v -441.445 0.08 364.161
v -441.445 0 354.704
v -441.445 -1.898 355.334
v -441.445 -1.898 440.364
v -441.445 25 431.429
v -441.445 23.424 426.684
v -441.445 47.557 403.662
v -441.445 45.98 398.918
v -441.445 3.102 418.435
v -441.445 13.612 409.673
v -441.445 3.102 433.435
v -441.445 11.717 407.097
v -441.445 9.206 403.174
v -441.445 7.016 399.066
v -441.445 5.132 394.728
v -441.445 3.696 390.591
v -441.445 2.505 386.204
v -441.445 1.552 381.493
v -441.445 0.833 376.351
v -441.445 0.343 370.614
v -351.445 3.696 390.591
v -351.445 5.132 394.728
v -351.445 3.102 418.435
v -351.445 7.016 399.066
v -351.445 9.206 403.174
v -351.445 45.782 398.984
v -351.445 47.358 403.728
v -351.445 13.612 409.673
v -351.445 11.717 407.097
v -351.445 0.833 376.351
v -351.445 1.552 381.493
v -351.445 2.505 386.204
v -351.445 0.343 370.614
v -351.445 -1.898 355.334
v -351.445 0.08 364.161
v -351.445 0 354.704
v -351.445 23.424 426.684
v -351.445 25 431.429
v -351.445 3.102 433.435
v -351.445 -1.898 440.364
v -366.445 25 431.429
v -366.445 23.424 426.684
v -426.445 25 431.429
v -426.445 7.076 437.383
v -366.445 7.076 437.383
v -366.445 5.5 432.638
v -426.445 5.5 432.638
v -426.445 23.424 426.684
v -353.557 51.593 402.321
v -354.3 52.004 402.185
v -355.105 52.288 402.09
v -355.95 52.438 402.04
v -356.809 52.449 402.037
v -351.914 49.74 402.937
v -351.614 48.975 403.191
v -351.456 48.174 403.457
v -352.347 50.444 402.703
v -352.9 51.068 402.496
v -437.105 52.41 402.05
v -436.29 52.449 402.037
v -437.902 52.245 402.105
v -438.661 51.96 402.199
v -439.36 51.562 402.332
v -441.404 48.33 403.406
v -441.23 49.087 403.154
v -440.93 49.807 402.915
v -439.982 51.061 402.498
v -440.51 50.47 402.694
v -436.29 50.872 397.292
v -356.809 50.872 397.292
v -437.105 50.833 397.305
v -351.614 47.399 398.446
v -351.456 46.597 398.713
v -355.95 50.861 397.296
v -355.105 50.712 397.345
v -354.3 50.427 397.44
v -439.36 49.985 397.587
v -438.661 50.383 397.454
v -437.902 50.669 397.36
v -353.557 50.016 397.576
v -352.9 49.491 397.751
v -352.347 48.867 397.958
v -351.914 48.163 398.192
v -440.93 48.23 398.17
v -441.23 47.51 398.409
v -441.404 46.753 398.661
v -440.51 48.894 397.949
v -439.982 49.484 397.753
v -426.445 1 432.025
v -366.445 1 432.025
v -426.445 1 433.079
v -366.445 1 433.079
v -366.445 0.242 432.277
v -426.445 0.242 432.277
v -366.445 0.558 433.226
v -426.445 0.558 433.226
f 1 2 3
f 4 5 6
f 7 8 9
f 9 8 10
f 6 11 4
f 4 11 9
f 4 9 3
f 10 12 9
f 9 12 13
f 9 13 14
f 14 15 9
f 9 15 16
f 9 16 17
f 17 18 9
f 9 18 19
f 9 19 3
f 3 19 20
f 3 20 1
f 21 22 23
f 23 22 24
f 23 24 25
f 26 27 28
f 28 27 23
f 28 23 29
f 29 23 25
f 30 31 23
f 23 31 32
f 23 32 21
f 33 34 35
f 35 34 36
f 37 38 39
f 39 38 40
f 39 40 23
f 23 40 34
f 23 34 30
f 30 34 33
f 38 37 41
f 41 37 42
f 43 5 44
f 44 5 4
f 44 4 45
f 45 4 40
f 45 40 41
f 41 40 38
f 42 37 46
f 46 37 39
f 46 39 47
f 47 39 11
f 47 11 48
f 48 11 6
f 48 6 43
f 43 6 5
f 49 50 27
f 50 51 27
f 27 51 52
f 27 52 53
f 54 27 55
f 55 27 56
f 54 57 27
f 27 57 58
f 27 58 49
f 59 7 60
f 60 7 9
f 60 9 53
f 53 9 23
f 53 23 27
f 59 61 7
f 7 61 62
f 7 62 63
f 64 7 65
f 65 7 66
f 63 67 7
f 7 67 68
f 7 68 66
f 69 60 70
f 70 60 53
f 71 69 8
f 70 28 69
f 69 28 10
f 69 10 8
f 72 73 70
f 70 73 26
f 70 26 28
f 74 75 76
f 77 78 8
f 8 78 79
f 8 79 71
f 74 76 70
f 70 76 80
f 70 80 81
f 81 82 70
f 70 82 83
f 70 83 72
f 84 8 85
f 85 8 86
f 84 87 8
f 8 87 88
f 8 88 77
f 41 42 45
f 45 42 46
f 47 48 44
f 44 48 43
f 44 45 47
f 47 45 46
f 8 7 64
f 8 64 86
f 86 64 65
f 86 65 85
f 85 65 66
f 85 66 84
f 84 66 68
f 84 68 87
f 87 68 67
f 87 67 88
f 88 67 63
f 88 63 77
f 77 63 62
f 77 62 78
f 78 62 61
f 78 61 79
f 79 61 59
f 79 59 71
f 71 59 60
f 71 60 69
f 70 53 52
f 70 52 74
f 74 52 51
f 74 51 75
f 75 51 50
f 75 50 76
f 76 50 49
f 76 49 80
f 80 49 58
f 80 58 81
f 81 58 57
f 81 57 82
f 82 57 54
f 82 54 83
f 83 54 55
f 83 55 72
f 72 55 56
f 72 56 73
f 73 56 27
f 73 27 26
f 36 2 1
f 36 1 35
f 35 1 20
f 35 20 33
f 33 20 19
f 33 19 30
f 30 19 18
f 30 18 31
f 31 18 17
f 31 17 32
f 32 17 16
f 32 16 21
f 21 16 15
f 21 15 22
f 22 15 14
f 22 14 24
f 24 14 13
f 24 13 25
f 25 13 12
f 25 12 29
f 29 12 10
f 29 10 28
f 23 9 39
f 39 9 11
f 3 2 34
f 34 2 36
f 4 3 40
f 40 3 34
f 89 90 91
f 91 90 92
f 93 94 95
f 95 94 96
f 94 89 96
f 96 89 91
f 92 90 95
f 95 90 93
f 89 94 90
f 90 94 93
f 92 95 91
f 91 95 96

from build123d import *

# Parameters (mm, degrees)
SKETCH1_W           = 90
SKETCH1_H           = 90
BOSS_EXTRUDE1_DEPTH = 25
SKETCH2_W           = 50
SKETCH2_H           = 25
BOSS_EXTRUDE2_DEPTH = 90
CUT_EXTRUDE1_DEPTH  = 114
BOSS_EXTRUDE3_DEPTH = 90
CUT_EXTRUDE2_DEPTH  = 90
CUT_EXTRUDE3_DEPTH  = 7
SKETCH12_W          = 60
SKETCH12_H          = 3.762713397
CUT_EXTRUDE4_DEPTH  = 7
SKETCH13_W          = 60
SKETCH13_H          = 6.597800351
BOSS_EXTRUDE4_DEPTH = 4
SKETCH15_W          = 60
SKETCH15_H          = 4.875511562
BOSS_EXTRUDE5_DEPTH = 6
CUT_EXTRUDE5_DEPTH  = 105
CUT_EXTRUDE6_DEPTH  = 105
CUT_EXTRUDE7_DEPTH  = 105
CUT_EXTRUDE8_DEPTH  = 105
SKETCH20_R          = 5.002398859
BOSS_EXTRUDE6_DEPTH = 5
SKETCH21_R          = 5.013240391
BOSS_EXTRUDE7_DEPTH = 5
CUT_EXTRUDE9_DEPTH  = 110
CUT_EXTRUDE10_DEPTH = 110
BOSS_EXTRUDE8_DEPTH = 90


with BuildPart() as part:
    # Sketch1 → Boss-Extrude1 (new body)
    with BuildSketch(Plane(origin=(0, 0, 0), x_dir=(1, 0, 0), z_dir=(0, 1, 0))):
        with Locations((-396.44486692, -394.733840304)):
            Rectangle(SKETCH1_W, SKETCH1_H)
    extrude(amount=BOSS_EXTRUDE1_DEPTH)

    # Sketch2 → Boss-Extrude2 (add)
    with BuildSketch(Plane(origin=(-351.44486692, 0, 0), x_dir=(0, 0, -1), z_dir=(1, 0, 0))):
        with Locations((-324.733840304, 12.5)):
            Rectangle(SKETCH2_W, SKETCH2_H)
    extrude(amount=-BOSS_EXTRUDE2_DEPTH)

    # Sketch3 → Cut-Extrude1 (cut)
    with BuildSketch(Plane(origin=(-351.44486692, 0, 0), x_dir=(0, 0, -1), z_dir=(1, 0, 0))):
        Polygon((-439.733840304, 0), (-431.428630034, 25), (-426.683614644, 23.423665978), (-432.80411144, 5), (-422.80411144, 5), (-417.80411144, 5), (-409.869768155, 28.88363156), (-456.556935105, 33.347834294), align=None)
    extrude(amount=-CUT_EXTRUDE1_DEPTH, mode=Mode.SUBTRACT)

    # Sketch6 → Boss-Extrude3 (add)
    with BuildSketch(Plane(origin=(-351.44486692, 0, 0), x_dir=(0, 0, -1), z_dir=(1, 0, 0))):
        Polygon((-417.80411144, 5), (-402.036905068, 52.448869357), (-397.292018132, 50.872148719), (-412.958326169, 3.726916659), align=None)
    extrude(amount=-BOSS_EXTRUDE3_DEPTH)

    # Sketch8 → Cut-Extrude2 (cut)
    with BuildSketch(Plane.ZY.offset(441.44486692)):
        Polygon((402.036905068, 52.448869357), (417.80411144, 5), (422.667757436, 11.843524049), (408.096373886, 67.204399508), align=None)
    extrude(amount=-CUT_EXTRUDE2_DEPTH, mode=Mode.SUBTRACT)

    # Sketch11 → Cut-Extrude3 (cut)
    with BuildSketch(Plane(origin=(0, 131.563601718, 396.027305256), x_dir=(1, 0, 0), z_dir=(0, 0.31526680439845073, 0.9490030779952134))):
        Polygon((-396.44486692, -112.290048567), (-366.44486692, -112.290048567), (-366.44486692, -132.290048567), (-426.44486692, -132.290048567), (-426.44486692, -112.290048567), align=None)
    extrude(amount=-CUT_EXTRUDE3_DEPTH, mode=Mode.SUBTRACT)

    # Sketch12 → Cut-Extrude4 (cut)
    with BuildSketch(Plane(origin=(0, 131.563601718, 396.027305256), x_dir=(1, 0, 0), z_dir=(0, 0.31526680439845073, 0.9490030779952134))):
        with Locations((-396.44486692, -134.171405266)):
            Rectangle(SKETCH12_W, SKETCH12_H)
    extrude(amount=-CUT_EXTRUDE4_DEPTH, mode=Mode.SUBTRACT)

    # Sketch13 → Boss-Extrude4 (add)
    with BuildSketch(Plane(origin=(0, 5, 0), x_dir=(1, 0, 0), z_dir=(0, 1, 0))):
        with Locations((-396.44486692, -433.995536892)):
            Rectangle(SKETCH13_W, SKETCH13_H)
    extrude(amount=-BOSS_EXTRUDE4_DEPTH)

    # Sketch15 → Boss-Extrude5 (add)
    with BuildSketch(Plane(origin=(0, 131.563601718, 396.027305256), x_dir=(1, 0, 0), z_dir=(0, 0.31526680439845073, 0.9490030779952134))):
        with Locations((-396.44486692, -133.615006183)):
            Rectangle(SKETCH15_W, SKETCH15_H)
    extrude(amount=-BOSS_EXTRUDE5_DEPTH)

    # Sketch16 → Cut-Extrude5 (cut)
    with BuildSketch(Plane.ZY.offset(441.44486692)):
        Polygon((299.733840304, 25), (405.889304299, 25), (320.938870245, 45.924702762), (282.519842095, 35.688976285), (299.733840304, -6.375653077), (299.733840304, 0), (299.733840304, 13.612271354), align=None)
        Polygon((409.673433828, 13.612271354), (405.889304299, 25), (299.733840304, 25), (299.733840304, 13.612271354), align=None)
    extrude(amount=-CUT_EXTRUDE5_DEPTH, mode=Mode.SUBTRACT)

    # Sketch17 → Cut-Extrude6 (cut)
    with BuildSketch(Plane(origin=(-351.44486692, 0, 0), x_dir=(0, 0, -1), z_dir=(1, 0, 0))):
        Polygon((-354.703637066, 13.612271354), (-354.703637066, -9.141758862), (-285.710269568, -9.141758862), (-285.710269568, 26.661614512), (-354.703637066, 26.661614512), align=None)
    extrude(amount=-CUT_EXTRUDE6_DEPTH, mode=Mode.SUBTRACT)

    # Sketch18 → Cut-Extrude7 (cut)
    with BuildSketch(Plane(origin=(0, 125.526947543, 377.753141183), x_dir=(1, 0, 0), z_dir=(0, 0.3153441274409663, 0.9489773871323255))):
        Polygon((-441.44486692, -77.007186028), (-436.44486692, -77.007186028), (-441.44486692, -82.007186028), align=None)
    extrude(amount=-CUT_EXTRUDE7_DEPTH, mode=Mode.SUBTRACT)

    # Sketch19 → Cut-Extrude8 (cut)
    with BuildSketch(Plane(origin=(0, 125.526947543, 377.753141183), x_dir=(1, 0, 0), z_dir=(0, 0.3153441274409663, 0.9489773871323255))):
        Polygon((-351.44486692, -82.007186028), (-351.44486692, -77.007186028), (-356.44486692, -77.007186028), align=None)
    extrude(amount=-CUT_EXTRUDE8_DEPTH, mode=Mode.SUBTRACT)

    # Sketch20 → Boss-Extrude6 (add)
    with BuildSketch(Plane(origin=(0, 125.526947543, 377.753141183), x_dir=(1, 0, 0), z_dir=(0, 0.3153441274409663, 0.9489773871323255))):
        with Locations((-436.44486692, -82.007186028)):
            Circle(SKETCH20_R)
    extrude(amount=-BOSS_EXTRUDE6_DEPTH)

    # Sketch21 → Boss-Extrude7 (add)
    with BuildSketch(Plane(origin=(0, 125.526947543, 377.753141183), x_dir=(1, 0, 0), z_dir=(0, 0.3153441274409663, 0.9489773871323255))):
        with Locations((-356.44486692, -82.007186028)):
            Circle(SKETCH21_R)
    extrude(amount=-BOSS_EXTRUDE7_DEPTH)

    # Sketch22 → Cut-Extrude9 (cut)
    with BuildSketch(Plane.ZY.offset(441.44486692)):
        with BuildLine():
            Line((352.286663655, 0), (351.925563617, 18.995212977))
            Line((351.925563617, 18.995212977), (405.563075233, 20.014865007))
            Line((405.563075233, 20.014865007), (409.673433828, 13.612271354))
            add(Edge.make_bspline(
                [(409.673433828, 13.612271354), (391.693864934, -0.348112278), (371.968229932, 0.006592141), (352.286663655, 0)],
                knots=[0, 0, 0, 0, 1, 1, 1, 1], degree=3))
        make_face()
    extrude(amount=-CUT_EXTRUDE9_DEPTH, mode=Mode.SUBTRACT)

    # Sketch23 → Cut-Extrude10 (cut)
    with BuildSketch(Plane(origin=(-351.44486692, 0, 0), x_dir=(0, 0, -1), z_dir=(1, 0, 0))):
        Polygon((-432.207797356, 6.794999958), (-432.80411144, 5), (-433.434645049, 3.101993844), (-418.434799695, 3.102045226), (-417.80411144, 5), (-417.309872164, 6.487333538), align=None)
    extrude(amount=-CUT_EXTRUDE10_DEPTH, mode=Mode.SUBTRACT)

    # Sketch24 → Boss-Extrude8 (add)
    with BuildSketch(Plane(origin=(-351.44486692, 0, 0), x_dir=(0, 0, -1), z_dir=(1, 0, 0))):
        Polygon((-439.733840304, 0), (-440.364373913, -1.898006156), (-355.334170675, -1.898006156), (-354.703637066, 0), align=None)
    extrude(amount=-BOSS_EXTRUDE8_DEPTH)


solid = part.part
